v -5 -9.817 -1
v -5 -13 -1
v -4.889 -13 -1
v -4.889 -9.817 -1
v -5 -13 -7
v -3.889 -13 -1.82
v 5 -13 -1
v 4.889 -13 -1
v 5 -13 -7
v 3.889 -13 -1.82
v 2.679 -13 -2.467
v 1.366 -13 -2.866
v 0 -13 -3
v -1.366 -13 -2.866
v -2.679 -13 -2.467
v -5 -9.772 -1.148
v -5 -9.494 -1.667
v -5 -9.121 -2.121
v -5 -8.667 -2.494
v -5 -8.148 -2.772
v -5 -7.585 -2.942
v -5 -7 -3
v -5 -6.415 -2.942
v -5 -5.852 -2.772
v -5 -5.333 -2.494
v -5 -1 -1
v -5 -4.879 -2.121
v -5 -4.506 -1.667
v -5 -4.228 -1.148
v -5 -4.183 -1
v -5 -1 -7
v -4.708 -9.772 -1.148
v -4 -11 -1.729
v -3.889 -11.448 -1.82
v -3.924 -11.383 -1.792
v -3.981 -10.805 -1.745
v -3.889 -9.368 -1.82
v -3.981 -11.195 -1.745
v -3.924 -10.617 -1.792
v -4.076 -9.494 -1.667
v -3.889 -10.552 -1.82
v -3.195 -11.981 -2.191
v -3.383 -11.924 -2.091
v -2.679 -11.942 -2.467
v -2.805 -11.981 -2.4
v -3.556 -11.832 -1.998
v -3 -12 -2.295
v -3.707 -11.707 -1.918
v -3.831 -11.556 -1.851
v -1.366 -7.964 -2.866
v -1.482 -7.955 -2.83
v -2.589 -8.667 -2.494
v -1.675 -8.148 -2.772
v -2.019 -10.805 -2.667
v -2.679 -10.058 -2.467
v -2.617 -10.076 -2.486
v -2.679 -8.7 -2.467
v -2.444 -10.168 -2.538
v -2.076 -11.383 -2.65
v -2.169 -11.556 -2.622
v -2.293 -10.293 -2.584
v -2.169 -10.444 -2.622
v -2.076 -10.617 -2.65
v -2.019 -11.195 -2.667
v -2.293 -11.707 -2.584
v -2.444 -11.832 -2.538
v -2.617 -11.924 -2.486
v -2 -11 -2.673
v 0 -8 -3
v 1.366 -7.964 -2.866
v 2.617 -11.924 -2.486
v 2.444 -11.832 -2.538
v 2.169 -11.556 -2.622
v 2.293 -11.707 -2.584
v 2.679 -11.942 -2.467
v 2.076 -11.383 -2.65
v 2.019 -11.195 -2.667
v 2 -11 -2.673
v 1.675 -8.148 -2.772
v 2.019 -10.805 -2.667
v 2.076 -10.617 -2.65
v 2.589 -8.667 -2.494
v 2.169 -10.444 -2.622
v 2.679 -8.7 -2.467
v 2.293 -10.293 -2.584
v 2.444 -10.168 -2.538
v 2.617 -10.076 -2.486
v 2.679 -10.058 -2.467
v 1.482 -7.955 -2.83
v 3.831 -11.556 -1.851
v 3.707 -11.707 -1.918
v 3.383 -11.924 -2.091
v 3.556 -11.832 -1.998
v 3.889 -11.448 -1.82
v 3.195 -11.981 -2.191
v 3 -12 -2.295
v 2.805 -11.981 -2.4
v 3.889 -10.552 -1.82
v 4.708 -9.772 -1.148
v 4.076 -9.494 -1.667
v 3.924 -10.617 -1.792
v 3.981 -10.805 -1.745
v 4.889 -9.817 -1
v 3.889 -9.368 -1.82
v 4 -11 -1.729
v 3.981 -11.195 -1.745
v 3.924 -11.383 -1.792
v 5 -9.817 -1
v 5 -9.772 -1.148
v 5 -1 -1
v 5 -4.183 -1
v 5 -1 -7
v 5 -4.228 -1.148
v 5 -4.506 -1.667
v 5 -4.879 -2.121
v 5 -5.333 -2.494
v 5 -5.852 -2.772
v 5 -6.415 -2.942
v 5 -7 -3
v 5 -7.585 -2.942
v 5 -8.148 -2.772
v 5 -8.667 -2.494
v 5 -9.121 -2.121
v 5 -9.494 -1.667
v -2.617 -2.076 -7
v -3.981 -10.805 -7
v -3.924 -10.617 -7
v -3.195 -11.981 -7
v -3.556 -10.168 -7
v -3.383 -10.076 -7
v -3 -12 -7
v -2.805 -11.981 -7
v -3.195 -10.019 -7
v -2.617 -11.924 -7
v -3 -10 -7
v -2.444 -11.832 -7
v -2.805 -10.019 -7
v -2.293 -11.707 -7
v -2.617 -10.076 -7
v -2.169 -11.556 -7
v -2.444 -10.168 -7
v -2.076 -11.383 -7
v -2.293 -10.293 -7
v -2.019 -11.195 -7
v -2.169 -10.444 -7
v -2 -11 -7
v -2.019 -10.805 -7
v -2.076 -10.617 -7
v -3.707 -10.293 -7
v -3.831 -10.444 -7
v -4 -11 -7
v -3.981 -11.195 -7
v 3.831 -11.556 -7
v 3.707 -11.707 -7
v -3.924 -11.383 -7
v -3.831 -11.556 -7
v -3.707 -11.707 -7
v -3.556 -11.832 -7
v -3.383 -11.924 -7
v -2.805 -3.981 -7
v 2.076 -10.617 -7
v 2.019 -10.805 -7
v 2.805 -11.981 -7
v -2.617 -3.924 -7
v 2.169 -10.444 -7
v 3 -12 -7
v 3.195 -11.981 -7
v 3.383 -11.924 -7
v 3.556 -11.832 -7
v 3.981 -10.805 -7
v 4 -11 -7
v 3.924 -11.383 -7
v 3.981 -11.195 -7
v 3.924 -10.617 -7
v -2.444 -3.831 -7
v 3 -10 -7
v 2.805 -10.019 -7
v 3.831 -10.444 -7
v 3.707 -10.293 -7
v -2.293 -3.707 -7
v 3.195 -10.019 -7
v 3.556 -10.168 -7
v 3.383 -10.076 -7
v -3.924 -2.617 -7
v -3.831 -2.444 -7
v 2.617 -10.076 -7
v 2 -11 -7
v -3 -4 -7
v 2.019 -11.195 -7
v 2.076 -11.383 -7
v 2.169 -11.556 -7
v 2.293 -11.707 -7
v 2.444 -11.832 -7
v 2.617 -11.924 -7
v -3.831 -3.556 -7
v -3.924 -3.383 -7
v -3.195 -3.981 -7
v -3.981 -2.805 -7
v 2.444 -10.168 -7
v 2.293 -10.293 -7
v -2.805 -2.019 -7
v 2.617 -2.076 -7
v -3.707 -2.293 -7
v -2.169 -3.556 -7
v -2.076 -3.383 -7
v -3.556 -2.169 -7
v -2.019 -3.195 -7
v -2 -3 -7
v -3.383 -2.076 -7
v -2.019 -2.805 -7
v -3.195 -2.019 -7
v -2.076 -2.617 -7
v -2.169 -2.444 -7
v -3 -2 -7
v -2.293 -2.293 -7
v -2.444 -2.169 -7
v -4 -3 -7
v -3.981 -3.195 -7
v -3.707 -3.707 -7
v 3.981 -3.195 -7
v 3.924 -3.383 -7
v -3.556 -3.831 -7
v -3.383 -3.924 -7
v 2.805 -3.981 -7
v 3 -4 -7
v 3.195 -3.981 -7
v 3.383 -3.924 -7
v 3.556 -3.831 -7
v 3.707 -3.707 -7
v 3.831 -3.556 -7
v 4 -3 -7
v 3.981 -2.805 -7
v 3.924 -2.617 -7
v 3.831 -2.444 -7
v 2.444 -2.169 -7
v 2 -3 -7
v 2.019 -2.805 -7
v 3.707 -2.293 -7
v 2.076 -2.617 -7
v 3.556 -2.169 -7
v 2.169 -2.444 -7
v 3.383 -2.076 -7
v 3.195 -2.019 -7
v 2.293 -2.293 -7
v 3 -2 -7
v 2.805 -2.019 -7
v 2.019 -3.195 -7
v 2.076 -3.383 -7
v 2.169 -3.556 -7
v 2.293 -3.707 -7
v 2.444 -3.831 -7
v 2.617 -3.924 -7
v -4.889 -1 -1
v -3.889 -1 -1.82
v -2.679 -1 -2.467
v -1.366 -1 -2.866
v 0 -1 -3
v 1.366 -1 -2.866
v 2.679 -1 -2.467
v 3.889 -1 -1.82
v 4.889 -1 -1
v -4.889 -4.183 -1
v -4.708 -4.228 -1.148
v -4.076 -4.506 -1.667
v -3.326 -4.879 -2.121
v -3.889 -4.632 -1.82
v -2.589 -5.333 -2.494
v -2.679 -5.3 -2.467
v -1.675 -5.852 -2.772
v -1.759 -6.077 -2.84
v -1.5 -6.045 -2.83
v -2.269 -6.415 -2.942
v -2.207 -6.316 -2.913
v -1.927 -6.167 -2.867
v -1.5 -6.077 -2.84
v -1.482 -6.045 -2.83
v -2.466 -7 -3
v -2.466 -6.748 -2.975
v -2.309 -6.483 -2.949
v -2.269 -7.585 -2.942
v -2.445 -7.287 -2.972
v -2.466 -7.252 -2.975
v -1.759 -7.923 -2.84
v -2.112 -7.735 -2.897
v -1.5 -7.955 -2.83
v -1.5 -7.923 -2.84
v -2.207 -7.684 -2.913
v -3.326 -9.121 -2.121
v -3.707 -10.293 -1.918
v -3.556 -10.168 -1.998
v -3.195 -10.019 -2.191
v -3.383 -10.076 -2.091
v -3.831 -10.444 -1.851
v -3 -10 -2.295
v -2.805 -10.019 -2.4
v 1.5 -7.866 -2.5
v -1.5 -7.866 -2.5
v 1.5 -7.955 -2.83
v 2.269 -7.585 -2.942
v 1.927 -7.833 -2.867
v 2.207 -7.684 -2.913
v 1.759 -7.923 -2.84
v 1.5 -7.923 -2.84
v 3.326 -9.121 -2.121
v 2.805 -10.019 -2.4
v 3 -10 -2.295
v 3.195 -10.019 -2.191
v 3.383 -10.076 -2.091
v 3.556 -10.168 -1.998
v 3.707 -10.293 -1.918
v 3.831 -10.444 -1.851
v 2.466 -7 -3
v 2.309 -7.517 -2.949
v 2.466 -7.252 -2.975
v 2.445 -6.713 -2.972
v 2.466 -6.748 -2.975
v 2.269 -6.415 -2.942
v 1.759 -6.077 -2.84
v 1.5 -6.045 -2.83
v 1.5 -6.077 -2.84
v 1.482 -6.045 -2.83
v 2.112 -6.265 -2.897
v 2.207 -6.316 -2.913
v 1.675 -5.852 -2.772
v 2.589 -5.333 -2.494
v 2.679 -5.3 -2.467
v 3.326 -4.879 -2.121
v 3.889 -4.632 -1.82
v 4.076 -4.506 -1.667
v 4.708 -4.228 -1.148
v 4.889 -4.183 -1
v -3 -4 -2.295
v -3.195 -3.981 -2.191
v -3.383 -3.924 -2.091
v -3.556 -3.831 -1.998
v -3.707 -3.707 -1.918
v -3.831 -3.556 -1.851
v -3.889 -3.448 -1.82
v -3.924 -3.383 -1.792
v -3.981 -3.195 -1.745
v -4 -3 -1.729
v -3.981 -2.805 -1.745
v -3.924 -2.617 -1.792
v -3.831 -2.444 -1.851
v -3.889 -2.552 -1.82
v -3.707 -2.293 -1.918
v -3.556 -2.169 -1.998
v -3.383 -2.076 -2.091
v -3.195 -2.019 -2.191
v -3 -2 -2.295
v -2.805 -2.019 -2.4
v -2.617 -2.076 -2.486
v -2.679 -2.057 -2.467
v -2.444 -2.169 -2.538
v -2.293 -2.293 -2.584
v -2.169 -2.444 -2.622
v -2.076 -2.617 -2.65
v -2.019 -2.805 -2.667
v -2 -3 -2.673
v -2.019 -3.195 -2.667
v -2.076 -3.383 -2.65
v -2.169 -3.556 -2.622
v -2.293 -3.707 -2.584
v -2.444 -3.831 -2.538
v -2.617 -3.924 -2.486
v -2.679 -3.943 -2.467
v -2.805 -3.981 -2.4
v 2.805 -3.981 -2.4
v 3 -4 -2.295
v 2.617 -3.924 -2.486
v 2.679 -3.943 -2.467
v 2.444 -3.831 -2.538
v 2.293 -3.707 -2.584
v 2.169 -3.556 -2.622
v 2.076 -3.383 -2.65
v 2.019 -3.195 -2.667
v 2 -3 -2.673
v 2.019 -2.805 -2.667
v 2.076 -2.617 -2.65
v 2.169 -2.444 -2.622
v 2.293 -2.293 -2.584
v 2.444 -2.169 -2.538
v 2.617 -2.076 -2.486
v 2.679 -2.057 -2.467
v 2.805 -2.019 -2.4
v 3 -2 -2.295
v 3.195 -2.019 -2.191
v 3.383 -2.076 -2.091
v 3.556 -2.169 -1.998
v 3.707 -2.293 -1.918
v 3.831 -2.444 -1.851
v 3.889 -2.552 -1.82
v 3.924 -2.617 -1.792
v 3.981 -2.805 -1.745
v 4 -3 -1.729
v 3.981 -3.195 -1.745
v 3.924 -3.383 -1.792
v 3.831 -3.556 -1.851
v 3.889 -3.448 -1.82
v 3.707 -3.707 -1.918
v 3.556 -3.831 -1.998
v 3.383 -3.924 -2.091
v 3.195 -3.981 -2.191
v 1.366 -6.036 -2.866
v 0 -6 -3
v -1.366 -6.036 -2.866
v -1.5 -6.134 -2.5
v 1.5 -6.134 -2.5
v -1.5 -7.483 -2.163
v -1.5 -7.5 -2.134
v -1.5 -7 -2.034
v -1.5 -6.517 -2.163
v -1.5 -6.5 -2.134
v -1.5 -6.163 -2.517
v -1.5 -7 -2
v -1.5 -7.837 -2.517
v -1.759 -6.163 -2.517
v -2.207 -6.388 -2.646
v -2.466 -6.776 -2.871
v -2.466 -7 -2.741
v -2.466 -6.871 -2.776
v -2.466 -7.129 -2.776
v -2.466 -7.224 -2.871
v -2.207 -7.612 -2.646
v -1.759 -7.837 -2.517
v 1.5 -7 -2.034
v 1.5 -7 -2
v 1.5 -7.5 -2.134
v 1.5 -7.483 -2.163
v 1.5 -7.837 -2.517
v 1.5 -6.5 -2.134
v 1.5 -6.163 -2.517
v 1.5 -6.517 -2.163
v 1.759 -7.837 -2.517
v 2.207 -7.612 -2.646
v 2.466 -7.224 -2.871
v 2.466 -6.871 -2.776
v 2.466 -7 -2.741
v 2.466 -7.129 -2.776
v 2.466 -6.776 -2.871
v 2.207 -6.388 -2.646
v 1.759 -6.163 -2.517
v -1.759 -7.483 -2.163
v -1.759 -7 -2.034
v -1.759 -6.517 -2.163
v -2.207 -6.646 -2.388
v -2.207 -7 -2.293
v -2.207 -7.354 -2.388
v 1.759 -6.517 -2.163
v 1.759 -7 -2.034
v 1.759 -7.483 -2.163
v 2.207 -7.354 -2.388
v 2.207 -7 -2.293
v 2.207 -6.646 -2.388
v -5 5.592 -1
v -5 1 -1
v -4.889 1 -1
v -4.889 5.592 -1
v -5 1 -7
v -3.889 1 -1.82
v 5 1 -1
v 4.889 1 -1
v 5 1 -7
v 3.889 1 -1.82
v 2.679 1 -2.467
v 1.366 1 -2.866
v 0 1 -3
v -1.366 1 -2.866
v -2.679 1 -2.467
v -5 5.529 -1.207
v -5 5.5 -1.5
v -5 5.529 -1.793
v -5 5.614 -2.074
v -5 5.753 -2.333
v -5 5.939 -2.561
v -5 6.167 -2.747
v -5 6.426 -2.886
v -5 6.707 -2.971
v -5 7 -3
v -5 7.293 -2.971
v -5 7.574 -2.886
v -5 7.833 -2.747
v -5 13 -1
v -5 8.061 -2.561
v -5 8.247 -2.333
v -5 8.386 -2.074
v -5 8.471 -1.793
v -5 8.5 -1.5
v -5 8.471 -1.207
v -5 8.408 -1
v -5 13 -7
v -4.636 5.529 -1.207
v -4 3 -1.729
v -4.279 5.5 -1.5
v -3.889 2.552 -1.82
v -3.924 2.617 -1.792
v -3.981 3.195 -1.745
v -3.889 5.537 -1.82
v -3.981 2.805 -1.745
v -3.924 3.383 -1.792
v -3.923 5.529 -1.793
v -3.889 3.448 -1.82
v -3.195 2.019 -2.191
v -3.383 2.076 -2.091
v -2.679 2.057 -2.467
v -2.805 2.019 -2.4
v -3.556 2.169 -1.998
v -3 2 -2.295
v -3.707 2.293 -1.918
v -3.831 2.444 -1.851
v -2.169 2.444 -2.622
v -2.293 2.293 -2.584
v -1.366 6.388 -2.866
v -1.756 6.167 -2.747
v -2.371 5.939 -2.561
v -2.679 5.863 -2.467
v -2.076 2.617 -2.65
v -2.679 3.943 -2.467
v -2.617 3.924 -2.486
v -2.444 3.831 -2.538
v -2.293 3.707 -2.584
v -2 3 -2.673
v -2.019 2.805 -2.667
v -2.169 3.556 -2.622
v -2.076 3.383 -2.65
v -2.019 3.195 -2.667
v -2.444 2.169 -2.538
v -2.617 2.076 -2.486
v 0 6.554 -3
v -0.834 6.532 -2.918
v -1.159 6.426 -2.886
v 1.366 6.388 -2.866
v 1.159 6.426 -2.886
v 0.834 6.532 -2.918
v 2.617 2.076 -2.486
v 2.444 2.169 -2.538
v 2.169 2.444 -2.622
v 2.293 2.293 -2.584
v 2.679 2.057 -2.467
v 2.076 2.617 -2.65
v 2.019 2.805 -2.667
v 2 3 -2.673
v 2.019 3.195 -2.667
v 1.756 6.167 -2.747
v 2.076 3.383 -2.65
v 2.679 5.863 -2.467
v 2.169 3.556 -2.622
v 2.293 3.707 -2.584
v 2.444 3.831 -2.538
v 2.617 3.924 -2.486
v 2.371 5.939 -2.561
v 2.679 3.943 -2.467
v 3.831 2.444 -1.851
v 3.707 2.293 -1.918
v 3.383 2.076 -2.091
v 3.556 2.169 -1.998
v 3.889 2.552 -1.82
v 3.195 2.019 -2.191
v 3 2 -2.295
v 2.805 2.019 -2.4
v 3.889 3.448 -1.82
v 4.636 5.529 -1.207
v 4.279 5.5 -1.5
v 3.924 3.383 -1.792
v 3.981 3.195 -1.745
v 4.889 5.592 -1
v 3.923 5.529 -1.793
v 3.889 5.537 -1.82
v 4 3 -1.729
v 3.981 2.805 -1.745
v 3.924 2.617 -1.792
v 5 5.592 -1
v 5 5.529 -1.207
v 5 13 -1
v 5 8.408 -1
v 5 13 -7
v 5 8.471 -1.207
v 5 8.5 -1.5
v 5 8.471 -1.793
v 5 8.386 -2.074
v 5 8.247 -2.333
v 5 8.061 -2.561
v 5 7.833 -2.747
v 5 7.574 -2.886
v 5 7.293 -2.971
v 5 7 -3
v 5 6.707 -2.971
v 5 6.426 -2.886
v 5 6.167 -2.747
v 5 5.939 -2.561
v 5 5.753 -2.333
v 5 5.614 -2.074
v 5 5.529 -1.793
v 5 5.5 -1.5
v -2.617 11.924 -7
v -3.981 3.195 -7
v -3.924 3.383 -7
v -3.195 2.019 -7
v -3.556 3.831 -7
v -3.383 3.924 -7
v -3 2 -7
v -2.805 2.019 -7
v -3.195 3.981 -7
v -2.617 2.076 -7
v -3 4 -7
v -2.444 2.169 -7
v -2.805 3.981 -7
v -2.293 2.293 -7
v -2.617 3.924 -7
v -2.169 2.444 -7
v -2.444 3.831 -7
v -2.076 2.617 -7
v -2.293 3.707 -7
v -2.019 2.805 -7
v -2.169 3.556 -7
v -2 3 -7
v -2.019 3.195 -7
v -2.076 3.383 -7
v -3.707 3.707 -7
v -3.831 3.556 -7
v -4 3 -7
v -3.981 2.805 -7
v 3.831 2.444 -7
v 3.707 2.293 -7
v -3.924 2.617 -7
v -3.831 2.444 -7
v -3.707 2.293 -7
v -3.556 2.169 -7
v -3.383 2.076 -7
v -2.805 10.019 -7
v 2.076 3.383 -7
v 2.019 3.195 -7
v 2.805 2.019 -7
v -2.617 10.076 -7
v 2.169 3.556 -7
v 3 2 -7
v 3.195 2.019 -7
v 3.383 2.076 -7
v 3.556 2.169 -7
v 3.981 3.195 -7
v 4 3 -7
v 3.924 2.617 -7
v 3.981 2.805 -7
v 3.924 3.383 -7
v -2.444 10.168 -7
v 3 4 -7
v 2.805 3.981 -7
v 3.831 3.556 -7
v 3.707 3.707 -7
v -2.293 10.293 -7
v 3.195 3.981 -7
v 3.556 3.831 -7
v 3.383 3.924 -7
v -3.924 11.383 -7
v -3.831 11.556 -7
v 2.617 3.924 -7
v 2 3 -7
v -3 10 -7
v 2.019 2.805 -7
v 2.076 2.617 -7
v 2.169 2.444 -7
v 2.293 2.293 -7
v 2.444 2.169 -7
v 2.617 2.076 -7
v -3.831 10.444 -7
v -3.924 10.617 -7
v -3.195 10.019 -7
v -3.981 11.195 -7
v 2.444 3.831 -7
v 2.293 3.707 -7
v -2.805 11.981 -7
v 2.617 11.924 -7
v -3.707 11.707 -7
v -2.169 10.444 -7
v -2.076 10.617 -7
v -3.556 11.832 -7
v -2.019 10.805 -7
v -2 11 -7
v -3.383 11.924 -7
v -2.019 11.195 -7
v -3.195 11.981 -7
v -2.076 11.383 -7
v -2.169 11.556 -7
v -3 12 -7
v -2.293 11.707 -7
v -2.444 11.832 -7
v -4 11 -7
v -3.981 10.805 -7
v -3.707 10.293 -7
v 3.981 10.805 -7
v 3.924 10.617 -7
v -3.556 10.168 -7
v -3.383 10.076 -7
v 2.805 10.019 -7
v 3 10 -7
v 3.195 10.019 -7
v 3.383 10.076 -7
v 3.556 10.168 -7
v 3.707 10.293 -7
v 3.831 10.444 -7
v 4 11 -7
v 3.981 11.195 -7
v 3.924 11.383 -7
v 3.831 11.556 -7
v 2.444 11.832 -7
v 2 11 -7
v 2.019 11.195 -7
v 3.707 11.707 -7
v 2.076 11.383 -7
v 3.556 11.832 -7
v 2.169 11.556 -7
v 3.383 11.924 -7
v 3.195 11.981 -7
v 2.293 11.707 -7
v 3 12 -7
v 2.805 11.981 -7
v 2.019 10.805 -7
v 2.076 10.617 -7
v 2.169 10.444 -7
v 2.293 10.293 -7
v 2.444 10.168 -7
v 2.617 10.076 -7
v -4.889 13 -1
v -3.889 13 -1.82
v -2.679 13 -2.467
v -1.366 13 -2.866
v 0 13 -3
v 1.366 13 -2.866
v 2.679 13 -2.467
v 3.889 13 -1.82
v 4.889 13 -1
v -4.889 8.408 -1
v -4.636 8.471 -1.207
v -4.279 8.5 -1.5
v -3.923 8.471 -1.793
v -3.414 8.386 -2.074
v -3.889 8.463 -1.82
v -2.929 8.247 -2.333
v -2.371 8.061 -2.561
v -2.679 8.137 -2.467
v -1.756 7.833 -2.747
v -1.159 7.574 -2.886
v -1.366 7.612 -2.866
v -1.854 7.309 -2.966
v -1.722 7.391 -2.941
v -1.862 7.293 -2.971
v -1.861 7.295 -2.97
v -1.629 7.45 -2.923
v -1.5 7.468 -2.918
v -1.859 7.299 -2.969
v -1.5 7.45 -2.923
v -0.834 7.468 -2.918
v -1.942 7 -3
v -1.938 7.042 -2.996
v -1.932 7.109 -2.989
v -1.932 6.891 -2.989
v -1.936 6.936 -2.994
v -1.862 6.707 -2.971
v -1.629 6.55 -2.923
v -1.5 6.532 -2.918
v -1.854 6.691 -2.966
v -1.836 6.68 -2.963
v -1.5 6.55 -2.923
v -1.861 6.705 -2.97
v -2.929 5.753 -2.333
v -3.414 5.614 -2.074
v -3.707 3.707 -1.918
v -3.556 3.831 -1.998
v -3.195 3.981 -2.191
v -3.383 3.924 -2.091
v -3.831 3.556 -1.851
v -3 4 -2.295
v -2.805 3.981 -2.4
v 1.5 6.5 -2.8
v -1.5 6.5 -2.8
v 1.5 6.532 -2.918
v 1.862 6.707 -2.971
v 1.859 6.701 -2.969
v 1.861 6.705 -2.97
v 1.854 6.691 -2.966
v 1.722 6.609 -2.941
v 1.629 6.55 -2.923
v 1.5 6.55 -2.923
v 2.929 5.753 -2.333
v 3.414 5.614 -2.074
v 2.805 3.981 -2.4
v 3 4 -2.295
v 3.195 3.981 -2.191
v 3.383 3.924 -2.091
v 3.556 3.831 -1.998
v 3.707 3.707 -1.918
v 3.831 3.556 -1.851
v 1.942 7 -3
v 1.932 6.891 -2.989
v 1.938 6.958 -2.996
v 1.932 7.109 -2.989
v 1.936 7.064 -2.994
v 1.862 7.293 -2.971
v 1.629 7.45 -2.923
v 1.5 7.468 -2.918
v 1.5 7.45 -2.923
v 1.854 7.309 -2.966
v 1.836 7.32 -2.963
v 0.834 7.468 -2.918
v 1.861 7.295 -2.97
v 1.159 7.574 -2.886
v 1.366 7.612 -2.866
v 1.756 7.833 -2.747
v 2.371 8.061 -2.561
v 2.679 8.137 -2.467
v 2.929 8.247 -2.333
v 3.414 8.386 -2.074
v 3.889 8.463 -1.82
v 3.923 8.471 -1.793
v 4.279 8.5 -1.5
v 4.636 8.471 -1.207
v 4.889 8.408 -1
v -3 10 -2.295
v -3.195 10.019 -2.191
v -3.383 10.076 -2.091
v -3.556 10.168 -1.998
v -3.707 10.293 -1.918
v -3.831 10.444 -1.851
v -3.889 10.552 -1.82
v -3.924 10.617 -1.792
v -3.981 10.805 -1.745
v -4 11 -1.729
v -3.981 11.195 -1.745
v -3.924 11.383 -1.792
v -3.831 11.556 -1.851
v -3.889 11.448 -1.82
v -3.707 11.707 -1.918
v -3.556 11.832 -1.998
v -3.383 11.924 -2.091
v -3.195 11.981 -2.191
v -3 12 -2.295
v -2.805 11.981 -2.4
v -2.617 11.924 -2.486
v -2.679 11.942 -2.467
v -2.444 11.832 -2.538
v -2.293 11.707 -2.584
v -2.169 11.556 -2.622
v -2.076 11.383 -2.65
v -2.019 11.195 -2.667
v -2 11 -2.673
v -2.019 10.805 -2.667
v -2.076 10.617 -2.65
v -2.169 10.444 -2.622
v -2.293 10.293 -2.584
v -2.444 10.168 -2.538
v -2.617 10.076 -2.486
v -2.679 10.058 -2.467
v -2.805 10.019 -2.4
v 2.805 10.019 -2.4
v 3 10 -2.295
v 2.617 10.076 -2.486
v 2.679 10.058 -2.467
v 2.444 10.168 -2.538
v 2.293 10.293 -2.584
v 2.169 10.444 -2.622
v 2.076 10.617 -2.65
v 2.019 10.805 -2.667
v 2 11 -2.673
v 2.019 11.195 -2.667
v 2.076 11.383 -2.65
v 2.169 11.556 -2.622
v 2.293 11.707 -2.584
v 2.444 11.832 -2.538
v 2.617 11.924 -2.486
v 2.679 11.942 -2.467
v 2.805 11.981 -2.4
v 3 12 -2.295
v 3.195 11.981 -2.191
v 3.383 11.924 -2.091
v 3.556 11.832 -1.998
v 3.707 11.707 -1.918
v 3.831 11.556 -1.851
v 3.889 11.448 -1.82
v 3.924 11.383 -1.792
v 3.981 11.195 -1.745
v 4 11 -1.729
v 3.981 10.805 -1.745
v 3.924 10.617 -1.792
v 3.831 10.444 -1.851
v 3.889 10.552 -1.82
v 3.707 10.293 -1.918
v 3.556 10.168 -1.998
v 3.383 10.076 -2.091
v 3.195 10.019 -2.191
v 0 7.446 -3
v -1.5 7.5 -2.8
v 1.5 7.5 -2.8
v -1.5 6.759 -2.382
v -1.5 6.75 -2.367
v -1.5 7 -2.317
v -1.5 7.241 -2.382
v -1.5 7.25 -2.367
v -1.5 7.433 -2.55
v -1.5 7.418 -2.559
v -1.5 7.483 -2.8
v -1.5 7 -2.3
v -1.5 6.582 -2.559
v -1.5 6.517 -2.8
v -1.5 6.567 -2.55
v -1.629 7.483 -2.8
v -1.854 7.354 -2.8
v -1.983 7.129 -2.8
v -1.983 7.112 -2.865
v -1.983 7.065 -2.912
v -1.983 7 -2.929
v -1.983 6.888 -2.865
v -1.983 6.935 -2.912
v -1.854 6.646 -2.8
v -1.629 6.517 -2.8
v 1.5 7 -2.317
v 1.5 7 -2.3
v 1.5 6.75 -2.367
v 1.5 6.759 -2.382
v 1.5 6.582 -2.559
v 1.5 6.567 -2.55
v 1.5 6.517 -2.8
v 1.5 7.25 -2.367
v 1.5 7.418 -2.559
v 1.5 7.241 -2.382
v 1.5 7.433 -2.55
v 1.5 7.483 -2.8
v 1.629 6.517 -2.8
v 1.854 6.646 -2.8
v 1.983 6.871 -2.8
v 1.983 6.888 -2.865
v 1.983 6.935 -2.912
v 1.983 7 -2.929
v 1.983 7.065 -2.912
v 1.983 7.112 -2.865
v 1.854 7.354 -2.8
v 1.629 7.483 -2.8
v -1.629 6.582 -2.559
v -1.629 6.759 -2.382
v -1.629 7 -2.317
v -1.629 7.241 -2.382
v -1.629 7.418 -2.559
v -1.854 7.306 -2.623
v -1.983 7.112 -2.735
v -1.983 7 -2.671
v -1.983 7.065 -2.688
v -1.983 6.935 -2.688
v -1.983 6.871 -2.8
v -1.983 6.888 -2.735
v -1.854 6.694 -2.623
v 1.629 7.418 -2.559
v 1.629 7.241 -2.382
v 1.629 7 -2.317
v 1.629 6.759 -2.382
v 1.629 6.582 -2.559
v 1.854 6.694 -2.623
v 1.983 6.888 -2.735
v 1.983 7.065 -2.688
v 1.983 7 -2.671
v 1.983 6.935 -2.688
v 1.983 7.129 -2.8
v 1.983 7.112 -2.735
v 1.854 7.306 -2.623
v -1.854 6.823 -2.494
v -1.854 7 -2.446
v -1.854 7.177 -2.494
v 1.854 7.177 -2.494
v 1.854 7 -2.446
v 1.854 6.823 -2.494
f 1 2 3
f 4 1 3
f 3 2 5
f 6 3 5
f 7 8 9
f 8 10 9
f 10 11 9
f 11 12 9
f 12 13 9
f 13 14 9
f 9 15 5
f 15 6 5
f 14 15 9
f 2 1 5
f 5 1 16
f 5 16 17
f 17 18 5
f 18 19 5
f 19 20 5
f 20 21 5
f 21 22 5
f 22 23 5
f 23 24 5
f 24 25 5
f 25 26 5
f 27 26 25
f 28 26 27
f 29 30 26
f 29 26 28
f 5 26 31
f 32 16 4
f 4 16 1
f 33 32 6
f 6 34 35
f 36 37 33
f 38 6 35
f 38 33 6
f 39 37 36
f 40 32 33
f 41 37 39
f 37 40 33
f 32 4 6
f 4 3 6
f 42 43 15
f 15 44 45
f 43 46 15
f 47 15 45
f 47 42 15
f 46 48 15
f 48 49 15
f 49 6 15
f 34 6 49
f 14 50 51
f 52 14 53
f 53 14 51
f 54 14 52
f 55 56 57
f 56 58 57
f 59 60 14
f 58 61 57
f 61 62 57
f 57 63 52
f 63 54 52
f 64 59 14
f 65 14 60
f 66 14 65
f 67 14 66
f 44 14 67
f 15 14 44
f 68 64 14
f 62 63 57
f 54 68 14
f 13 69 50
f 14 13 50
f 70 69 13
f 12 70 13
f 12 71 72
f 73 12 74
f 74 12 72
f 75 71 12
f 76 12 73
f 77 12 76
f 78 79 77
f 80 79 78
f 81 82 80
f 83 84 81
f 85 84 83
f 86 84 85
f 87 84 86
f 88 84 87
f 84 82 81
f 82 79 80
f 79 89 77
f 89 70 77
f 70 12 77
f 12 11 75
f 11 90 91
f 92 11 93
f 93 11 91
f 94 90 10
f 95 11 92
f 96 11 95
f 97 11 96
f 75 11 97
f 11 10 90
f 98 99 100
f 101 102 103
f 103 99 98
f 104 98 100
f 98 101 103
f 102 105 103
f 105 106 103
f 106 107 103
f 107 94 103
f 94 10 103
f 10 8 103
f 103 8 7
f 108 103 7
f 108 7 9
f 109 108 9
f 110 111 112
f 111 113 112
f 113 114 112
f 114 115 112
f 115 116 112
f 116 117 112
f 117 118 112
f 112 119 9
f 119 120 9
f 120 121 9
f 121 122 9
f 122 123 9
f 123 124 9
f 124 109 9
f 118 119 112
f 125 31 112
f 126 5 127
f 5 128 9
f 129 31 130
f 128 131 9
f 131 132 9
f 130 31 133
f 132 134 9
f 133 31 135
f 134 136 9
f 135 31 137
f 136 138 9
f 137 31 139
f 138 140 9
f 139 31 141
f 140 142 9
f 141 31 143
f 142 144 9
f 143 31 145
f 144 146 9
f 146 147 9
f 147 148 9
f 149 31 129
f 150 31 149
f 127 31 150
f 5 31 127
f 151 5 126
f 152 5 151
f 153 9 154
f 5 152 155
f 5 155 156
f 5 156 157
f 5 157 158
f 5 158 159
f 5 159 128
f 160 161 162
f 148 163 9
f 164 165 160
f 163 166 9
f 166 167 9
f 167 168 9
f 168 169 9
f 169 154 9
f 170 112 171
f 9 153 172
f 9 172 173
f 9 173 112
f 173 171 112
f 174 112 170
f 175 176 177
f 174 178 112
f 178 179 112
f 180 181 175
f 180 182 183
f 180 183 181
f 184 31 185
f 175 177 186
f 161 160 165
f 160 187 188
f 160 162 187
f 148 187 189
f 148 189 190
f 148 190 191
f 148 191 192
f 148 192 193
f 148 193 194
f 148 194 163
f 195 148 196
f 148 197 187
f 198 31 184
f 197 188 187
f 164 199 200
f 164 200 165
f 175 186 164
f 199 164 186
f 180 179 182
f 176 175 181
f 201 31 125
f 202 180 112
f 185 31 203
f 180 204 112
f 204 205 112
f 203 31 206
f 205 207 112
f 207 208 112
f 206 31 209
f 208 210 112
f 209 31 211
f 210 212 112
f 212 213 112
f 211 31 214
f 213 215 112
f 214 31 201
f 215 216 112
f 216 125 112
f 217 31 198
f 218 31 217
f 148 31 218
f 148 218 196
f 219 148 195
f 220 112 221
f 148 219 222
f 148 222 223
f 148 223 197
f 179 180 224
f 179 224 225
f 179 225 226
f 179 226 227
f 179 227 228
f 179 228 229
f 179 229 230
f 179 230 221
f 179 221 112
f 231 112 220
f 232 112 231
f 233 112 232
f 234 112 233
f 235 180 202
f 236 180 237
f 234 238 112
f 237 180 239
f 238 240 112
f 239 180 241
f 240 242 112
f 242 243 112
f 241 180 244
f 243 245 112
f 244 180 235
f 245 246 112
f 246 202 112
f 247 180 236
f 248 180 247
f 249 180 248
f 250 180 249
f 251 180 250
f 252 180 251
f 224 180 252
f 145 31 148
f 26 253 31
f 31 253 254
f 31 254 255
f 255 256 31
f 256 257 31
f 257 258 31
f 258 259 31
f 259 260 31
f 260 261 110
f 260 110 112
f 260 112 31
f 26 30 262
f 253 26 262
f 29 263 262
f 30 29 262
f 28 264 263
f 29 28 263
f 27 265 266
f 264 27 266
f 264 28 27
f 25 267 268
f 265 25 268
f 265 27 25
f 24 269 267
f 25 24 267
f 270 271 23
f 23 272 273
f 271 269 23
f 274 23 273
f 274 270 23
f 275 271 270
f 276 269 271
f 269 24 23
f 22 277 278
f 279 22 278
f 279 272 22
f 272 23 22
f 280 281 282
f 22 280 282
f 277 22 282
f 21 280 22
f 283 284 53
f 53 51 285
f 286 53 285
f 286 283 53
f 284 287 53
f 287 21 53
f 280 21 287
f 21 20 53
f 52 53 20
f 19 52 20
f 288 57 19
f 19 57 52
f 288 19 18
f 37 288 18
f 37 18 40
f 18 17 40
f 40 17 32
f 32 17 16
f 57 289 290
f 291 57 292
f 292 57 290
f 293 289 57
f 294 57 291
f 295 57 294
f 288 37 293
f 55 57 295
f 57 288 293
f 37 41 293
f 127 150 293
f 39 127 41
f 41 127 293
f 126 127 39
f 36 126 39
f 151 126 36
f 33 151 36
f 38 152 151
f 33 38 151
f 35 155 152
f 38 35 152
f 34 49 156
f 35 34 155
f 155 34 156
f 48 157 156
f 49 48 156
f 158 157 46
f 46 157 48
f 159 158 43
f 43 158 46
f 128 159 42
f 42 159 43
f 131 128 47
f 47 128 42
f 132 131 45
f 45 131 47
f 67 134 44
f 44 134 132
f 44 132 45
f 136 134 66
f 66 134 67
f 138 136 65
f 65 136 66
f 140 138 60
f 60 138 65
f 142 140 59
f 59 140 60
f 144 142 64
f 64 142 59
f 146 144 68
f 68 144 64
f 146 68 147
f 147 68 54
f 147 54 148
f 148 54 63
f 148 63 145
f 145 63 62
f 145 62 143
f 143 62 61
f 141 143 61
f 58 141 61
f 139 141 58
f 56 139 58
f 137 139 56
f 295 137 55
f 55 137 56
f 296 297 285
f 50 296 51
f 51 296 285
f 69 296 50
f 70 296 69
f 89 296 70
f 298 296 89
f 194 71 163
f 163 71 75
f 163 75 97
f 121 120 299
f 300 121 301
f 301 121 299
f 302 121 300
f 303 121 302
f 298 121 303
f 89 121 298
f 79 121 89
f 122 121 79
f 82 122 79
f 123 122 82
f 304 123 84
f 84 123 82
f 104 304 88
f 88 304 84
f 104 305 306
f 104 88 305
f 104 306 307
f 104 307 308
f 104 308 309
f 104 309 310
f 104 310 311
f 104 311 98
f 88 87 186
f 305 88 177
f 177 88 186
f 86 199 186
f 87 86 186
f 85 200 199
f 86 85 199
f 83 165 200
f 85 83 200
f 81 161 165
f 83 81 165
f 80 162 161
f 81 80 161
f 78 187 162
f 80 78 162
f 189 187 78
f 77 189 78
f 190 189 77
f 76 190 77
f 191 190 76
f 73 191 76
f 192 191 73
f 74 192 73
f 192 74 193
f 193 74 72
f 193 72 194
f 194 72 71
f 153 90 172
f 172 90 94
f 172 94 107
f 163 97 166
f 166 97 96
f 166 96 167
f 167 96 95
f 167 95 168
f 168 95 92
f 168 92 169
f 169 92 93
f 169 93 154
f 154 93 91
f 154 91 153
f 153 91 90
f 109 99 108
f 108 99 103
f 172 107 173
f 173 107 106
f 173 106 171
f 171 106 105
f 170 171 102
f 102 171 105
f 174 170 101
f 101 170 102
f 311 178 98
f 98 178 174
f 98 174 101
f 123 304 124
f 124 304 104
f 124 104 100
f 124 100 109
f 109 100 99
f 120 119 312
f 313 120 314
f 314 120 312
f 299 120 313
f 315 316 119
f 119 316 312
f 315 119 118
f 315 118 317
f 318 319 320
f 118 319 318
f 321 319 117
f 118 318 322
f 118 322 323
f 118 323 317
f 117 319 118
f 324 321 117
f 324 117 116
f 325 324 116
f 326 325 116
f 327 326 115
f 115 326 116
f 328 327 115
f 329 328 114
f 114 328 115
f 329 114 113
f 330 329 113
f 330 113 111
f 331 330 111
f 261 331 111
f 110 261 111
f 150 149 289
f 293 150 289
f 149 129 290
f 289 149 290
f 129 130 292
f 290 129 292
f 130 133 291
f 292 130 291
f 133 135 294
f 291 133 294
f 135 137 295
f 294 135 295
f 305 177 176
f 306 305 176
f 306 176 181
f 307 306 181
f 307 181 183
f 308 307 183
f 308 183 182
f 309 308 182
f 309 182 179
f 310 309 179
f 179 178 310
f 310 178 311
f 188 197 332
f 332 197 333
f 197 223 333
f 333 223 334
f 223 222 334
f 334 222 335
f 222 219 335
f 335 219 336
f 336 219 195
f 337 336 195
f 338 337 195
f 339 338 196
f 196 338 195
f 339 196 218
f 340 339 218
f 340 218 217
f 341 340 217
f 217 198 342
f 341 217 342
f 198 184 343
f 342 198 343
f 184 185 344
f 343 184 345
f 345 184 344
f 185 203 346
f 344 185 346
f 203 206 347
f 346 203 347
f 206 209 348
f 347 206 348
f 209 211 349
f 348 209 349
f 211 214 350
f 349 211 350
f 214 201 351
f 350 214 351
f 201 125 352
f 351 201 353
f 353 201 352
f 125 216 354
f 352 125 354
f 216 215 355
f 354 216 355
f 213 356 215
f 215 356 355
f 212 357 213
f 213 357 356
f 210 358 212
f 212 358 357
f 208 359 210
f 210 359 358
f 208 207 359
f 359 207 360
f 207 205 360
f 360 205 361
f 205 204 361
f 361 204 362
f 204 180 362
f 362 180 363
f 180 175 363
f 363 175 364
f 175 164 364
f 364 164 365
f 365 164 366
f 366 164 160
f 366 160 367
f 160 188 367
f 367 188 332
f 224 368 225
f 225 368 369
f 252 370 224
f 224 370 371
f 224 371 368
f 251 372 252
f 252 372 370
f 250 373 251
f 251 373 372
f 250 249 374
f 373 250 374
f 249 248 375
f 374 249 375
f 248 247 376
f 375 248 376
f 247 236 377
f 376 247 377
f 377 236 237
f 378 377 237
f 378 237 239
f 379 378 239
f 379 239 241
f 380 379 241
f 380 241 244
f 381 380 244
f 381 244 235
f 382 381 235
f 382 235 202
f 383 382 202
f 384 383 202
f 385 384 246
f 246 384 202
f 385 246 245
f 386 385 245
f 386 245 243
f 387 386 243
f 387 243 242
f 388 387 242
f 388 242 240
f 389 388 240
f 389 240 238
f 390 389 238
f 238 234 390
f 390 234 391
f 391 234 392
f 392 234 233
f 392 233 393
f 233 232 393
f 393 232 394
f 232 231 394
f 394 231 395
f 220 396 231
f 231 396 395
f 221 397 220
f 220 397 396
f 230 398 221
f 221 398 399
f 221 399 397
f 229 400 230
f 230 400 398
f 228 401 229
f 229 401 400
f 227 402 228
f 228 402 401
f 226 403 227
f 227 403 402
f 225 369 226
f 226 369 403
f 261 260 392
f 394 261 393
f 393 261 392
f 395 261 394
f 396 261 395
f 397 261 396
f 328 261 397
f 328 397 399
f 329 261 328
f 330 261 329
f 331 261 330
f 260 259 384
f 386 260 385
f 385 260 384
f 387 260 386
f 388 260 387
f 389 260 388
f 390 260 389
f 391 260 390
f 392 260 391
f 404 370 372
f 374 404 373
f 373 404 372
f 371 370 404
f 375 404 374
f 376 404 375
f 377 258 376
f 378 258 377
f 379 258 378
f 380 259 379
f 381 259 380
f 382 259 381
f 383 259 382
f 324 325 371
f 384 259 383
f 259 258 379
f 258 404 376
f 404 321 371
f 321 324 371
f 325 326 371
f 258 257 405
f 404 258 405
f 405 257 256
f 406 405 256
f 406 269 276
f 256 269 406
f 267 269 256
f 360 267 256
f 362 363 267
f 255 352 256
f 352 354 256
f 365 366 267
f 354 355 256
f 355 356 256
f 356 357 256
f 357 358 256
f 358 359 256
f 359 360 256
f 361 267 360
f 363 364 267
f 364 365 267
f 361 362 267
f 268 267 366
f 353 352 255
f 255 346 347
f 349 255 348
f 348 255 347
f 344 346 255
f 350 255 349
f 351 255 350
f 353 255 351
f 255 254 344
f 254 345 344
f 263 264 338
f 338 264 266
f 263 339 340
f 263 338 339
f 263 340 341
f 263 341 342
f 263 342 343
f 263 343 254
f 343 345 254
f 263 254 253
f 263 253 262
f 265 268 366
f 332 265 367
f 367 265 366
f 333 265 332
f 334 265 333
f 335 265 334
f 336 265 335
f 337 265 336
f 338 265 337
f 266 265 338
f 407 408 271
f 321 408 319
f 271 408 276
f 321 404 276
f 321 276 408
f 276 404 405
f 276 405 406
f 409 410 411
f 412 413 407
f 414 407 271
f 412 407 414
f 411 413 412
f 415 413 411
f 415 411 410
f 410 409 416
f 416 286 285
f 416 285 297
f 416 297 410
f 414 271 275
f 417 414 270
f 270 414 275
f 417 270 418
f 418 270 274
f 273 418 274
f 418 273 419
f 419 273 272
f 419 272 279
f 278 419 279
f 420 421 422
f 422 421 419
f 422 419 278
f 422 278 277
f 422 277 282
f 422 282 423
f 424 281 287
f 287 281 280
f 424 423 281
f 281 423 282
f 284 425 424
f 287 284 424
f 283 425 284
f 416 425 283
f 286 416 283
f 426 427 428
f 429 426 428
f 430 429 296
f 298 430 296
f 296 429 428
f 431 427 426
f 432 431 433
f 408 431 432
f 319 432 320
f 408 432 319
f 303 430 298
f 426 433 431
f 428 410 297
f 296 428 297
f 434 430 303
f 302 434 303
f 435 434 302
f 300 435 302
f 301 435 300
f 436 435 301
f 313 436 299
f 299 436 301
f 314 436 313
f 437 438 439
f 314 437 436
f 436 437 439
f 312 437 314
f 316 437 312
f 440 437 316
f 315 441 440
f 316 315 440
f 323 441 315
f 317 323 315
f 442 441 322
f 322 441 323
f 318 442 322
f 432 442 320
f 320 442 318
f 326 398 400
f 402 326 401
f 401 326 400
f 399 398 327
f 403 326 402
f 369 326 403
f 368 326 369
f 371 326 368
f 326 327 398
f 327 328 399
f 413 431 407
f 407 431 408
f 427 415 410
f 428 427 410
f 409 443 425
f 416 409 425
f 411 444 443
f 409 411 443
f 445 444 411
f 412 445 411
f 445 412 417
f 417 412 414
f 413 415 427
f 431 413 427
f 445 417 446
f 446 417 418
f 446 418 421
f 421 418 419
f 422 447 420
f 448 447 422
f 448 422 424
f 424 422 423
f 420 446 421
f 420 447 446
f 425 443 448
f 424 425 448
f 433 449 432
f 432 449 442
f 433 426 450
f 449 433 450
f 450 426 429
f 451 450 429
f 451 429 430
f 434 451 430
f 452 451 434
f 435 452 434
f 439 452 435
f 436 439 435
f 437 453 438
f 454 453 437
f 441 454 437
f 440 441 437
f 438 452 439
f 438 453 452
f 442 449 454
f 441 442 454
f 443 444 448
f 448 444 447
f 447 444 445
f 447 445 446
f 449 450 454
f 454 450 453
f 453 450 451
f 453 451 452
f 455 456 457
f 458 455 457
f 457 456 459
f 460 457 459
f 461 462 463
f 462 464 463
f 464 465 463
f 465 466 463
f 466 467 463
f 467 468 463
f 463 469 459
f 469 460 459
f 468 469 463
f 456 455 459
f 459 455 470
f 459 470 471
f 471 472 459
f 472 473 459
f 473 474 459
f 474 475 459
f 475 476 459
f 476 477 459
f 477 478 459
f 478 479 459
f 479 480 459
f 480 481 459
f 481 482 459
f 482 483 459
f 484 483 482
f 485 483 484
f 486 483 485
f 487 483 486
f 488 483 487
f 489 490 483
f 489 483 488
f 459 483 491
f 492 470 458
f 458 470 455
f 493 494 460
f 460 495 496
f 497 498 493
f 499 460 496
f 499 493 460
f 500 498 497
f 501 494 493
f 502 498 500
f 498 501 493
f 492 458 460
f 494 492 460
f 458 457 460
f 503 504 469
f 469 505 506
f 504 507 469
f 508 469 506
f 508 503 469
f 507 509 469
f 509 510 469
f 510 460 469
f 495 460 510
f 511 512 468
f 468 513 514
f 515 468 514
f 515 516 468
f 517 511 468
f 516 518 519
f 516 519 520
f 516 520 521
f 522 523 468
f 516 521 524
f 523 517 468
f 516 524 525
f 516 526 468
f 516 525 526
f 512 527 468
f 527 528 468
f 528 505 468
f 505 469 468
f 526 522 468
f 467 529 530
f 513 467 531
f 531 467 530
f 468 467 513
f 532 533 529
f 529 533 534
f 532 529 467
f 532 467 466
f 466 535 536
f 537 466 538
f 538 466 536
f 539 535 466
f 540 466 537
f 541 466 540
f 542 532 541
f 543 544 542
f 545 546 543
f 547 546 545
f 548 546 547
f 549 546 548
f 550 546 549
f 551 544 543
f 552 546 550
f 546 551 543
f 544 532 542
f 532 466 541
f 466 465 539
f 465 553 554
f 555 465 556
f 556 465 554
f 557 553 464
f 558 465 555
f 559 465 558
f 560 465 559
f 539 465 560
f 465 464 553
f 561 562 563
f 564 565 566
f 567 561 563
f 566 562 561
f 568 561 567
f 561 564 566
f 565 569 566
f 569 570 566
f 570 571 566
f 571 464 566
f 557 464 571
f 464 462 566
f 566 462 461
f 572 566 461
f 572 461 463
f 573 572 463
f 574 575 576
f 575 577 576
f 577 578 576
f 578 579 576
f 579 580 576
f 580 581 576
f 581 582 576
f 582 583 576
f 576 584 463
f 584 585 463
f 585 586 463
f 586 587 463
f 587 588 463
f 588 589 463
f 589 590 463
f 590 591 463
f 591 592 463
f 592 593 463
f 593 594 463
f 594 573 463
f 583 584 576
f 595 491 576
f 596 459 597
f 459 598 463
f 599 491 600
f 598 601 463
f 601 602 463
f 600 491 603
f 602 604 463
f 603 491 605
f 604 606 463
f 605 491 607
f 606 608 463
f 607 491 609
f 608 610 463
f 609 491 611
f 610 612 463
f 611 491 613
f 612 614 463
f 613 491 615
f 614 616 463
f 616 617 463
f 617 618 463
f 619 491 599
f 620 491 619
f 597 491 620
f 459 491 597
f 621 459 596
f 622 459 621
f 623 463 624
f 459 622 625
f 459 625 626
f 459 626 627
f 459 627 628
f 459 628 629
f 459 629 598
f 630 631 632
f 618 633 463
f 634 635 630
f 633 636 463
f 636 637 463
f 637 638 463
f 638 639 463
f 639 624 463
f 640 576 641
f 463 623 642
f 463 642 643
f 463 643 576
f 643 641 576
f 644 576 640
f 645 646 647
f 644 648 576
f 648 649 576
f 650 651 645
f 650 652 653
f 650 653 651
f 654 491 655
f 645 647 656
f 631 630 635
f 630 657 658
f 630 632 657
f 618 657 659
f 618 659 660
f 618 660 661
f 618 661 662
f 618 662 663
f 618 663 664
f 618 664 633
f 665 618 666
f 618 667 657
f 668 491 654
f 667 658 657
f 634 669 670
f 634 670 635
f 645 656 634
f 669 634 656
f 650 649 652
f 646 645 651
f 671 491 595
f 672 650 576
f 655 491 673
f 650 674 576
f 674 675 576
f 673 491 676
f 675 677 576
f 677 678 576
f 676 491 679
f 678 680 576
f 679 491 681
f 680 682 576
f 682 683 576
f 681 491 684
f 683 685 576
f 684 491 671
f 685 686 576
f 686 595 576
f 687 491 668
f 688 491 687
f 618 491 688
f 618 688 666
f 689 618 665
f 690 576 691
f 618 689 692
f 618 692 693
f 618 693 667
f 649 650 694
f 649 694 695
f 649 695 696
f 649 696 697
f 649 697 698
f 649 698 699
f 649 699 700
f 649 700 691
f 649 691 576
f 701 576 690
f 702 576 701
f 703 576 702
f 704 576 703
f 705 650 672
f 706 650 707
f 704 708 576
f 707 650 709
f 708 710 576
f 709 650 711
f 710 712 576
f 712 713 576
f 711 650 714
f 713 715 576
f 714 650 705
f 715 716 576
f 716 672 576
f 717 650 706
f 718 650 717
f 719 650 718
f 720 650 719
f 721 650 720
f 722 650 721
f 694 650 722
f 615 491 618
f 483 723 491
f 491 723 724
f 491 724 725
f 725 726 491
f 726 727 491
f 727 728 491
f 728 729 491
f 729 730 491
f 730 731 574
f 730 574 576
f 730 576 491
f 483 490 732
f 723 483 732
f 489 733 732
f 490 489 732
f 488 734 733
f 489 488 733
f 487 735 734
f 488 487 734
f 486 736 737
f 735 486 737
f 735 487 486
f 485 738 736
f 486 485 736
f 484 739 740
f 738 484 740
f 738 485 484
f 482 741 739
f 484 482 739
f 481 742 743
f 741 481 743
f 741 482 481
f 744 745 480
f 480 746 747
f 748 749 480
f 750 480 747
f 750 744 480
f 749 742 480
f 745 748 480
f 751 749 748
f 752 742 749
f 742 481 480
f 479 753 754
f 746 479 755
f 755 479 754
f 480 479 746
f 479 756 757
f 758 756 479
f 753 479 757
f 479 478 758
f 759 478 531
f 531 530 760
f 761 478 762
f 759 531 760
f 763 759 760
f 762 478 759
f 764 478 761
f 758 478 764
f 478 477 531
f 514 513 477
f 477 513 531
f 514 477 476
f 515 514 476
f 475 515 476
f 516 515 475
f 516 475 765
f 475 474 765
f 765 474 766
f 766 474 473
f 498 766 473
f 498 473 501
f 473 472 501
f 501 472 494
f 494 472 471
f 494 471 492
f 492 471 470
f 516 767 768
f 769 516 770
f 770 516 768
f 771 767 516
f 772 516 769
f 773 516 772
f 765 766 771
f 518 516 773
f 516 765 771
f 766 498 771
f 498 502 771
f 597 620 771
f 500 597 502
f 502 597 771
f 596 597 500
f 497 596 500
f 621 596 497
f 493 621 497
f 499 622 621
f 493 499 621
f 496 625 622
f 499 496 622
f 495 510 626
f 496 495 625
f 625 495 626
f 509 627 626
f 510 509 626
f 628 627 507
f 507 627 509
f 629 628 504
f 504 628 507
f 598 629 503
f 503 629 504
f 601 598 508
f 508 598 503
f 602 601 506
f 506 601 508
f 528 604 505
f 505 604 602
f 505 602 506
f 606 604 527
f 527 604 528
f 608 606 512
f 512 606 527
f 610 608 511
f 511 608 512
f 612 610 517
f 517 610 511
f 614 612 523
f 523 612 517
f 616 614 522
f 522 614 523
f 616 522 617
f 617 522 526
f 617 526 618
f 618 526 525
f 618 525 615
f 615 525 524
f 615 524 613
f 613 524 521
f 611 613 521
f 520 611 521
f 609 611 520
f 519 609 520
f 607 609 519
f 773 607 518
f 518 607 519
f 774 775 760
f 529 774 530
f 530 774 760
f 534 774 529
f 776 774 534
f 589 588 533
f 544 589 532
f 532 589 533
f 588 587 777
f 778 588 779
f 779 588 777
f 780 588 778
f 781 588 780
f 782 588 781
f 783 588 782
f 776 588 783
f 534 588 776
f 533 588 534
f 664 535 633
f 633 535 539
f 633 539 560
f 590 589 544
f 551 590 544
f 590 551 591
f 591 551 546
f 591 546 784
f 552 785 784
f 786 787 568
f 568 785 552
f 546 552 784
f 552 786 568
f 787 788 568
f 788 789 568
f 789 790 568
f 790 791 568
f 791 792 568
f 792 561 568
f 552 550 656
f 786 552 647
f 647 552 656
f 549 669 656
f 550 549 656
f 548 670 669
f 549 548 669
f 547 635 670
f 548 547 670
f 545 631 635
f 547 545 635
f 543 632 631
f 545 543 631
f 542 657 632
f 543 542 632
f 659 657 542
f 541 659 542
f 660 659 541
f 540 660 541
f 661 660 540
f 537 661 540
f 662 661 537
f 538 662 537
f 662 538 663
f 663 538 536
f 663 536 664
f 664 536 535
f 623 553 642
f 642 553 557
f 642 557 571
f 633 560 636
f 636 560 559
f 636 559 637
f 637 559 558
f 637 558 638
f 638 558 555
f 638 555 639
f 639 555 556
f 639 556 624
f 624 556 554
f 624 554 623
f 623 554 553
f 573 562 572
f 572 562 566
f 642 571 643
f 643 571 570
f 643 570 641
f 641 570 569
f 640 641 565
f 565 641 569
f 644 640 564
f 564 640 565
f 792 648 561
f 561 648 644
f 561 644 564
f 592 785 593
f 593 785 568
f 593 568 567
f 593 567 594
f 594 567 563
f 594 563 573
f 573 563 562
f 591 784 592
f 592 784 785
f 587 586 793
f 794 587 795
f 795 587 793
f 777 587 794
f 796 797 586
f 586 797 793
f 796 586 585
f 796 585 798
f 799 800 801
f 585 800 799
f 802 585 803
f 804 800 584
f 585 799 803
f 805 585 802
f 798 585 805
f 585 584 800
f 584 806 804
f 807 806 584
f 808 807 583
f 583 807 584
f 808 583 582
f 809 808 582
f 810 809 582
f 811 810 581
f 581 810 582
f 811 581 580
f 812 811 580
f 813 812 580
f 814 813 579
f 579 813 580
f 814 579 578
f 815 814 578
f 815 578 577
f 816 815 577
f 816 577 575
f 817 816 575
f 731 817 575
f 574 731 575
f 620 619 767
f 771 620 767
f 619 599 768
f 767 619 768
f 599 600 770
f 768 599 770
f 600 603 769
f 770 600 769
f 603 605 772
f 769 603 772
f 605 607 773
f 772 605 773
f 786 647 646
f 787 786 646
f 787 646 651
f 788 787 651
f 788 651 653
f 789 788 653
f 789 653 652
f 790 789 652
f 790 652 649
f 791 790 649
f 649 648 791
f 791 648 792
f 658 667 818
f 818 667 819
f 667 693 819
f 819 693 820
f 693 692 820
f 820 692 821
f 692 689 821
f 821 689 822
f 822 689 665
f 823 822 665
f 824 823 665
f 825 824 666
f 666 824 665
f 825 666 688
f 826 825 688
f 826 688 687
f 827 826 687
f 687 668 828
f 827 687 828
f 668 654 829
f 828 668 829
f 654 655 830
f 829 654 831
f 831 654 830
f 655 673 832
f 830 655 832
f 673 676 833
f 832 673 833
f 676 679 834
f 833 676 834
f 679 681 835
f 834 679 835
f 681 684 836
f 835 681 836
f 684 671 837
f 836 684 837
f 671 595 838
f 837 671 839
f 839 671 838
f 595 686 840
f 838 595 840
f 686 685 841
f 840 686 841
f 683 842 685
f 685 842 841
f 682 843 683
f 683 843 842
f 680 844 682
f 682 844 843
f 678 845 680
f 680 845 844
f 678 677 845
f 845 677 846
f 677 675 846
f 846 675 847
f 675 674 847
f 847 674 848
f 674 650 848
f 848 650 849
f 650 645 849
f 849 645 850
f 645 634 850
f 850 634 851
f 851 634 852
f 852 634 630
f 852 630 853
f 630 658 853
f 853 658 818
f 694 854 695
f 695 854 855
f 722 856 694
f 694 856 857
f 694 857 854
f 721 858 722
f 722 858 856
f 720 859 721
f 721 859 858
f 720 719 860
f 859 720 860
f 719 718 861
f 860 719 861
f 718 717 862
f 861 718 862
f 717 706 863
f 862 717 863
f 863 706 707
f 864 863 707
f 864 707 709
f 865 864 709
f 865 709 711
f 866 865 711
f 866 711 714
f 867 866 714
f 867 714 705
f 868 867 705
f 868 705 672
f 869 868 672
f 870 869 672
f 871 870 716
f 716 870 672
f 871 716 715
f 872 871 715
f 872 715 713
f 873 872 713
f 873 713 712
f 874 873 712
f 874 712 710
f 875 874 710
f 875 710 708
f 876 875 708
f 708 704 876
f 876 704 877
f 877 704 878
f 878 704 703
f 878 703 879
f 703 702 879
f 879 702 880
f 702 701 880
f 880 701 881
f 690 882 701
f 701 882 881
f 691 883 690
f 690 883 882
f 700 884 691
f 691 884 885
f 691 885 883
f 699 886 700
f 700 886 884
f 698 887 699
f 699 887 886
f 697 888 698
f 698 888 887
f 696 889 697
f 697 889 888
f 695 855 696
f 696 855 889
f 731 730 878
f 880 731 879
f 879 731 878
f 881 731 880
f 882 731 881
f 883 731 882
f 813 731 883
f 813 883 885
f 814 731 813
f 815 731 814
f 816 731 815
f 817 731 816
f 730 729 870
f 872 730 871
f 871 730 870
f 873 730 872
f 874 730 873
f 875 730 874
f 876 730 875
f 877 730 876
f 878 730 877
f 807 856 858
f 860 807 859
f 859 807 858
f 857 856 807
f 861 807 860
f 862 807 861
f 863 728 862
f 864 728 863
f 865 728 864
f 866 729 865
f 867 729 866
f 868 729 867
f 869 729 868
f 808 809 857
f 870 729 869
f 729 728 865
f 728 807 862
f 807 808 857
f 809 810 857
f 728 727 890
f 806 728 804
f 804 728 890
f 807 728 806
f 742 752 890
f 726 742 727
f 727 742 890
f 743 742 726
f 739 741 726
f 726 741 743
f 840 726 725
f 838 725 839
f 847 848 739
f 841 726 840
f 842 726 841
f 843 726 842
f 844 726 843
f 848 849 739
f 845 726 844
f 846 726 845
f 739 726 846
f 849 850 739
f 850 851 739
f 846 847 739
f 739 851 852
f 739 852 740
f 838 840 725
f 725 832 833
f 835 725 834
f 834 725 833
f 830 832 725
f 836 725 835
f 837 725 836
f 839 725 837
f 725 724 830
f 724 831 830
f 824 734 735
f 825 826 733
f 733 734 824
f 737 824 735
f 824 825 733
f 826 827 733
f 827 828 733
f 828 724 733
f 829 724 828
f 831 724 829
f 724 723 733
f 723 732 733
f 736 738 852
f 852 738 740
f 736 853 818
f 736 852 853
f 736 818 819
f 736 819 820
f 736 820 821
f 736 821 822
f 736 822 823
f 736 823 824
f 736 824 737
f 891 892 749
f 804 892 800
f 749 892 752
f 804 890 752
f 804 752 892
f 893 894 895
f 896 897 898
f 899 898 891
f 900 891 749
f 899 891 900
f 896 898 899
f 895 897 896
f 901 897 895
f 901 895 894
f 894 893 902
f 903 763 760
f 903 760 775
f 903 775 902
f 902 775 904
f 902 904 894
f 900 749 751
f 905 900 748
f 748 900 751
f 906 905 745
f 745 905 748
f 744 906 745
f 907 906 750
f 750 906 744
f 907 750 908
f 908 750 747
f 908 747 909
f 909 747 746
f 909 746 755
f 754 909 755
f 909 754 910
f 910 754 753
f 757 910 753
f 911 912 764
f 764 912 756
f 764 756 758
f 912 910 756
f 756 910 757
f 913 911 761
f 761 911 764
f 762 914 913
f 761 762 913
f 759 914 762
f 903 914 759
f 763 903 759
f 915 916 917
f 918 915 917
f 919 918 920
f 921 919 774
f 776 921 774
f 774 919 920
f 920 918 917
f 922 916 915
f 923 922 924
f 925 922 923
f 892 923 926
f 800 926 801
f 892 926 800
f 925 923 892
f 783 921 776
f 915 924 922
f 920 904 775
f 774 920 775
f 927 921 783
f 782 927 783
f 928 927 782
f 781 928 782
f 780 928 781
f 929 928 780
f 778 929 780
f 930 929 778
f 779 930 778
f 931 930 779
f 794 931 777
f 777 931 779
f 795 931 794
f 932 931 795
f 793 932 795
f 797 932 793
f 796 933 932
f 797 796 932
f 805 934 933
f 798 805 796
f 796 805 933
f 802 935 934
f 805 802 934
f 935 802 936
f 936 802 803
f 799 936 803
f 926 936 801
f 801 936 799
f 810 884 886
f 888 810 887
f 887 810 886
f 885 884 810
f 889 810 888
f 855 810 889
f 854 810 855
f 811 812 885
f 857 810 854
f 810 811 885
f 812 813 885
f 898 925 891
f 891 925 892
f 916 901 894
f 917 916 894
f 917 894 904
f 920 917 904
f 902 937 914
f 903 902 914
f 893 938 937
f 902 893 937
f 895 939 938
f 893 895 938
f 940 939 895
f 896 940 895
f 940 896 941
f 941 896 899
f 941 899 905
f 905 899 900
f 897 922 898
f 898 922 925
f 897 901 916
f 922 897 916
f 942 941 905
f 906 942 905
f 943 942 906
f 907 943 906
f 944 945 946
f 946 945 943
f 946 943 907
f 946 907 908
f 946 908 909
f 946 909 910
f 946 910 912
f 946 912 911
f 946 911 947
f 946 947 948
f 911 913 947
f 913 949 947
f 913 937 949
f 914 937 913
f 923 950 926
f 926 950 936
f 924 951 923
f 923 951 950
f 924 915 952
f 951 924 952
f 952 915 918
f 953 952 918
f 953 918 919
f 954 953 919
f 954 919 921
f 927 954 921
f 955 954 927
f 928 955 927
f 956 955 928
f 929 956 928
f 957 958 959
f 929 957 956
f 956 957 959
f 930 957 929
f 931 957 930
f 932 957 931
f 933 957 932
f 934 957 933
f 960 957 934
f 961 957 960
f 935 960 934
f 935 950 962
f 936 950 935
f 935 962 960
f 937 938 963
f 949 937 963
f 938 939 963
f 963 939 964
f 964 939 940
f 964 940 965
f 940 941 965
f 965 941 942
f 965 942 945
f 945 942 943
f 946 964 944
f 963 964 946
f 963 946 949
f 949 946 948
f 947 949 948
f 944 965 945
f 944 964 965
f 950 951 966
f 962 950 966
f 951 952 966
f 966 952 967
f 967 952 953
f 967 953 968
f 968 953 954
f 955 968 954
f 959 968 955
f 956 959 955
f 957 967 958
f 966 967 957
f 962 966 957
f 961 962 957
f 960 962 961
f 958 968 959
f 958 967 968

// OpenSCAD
module blockr(len, wid, hgt, rad,slot, pipoff) {
	difference() {
      translate([4,0,0])
        cube([len,wid,hgt],center=true);
		//translate([1-len/3,0])
      //   cube([2+len/2,wid/2,hgt],center=true);
	   translate([3-rad,0,0])
		  cylinder(r=rad,h=hgt*2,center=true,$fn=32);
      translate([-4,0,0])
		   rotate([90,0,0])
            cylinder(r=2+hgt/2,h=hgt*2,center=true,$fn=32);
      translate([0,wid/2-2,hgt/2-2])
		   rotate([0,90,0])
            cylinder(r=1,h=len*3,center=true,$fn=32);
      translate([0,-(wid/2-2),hgt/2-2])
		   rotate([0,90,0])
            cylinder(r=1,h=len*3,center=true,$fn=32);
      translate([0,wid/2-2,-(hgt/2-2)])
		   rotate([0,90,0])
            cylinder(r=1,h=len*3,center=true,$fn=32);
      translate([0,-(wid/2-2),-(hgt/2-2)])
		   rotate([0,90,0])
            cylinder(r=1,h=len*3,center=true,$fn=32);
   }
   translate([pipoff,0,2])
      pip(slot,wid,hgt,rad,1, pipoff, 0);
			
}

module pip(slot,wid,ht, tuber,n, xoff, yoff) {
       translate([xoff,yoff,-3.5])
         sphere(tuber/3,center=true,$fn=12);
   	translate([xoff,yoff,-2])
         cylinder(r=tuber/3,h=0.5+ht/4,center=true,$fn=12);
       translate([xoff,yoff,-0.5])
         sphere(tuber/3,center=true,$fn=12);
}

rotate([0,90,0]) {
translate([0,-7,0])
   blockr(6,12,10,  3,  3,   1.5);
translate([0,7,0])
    blockr(6,12,10,  1.5, 1.8,   1.4);
}
